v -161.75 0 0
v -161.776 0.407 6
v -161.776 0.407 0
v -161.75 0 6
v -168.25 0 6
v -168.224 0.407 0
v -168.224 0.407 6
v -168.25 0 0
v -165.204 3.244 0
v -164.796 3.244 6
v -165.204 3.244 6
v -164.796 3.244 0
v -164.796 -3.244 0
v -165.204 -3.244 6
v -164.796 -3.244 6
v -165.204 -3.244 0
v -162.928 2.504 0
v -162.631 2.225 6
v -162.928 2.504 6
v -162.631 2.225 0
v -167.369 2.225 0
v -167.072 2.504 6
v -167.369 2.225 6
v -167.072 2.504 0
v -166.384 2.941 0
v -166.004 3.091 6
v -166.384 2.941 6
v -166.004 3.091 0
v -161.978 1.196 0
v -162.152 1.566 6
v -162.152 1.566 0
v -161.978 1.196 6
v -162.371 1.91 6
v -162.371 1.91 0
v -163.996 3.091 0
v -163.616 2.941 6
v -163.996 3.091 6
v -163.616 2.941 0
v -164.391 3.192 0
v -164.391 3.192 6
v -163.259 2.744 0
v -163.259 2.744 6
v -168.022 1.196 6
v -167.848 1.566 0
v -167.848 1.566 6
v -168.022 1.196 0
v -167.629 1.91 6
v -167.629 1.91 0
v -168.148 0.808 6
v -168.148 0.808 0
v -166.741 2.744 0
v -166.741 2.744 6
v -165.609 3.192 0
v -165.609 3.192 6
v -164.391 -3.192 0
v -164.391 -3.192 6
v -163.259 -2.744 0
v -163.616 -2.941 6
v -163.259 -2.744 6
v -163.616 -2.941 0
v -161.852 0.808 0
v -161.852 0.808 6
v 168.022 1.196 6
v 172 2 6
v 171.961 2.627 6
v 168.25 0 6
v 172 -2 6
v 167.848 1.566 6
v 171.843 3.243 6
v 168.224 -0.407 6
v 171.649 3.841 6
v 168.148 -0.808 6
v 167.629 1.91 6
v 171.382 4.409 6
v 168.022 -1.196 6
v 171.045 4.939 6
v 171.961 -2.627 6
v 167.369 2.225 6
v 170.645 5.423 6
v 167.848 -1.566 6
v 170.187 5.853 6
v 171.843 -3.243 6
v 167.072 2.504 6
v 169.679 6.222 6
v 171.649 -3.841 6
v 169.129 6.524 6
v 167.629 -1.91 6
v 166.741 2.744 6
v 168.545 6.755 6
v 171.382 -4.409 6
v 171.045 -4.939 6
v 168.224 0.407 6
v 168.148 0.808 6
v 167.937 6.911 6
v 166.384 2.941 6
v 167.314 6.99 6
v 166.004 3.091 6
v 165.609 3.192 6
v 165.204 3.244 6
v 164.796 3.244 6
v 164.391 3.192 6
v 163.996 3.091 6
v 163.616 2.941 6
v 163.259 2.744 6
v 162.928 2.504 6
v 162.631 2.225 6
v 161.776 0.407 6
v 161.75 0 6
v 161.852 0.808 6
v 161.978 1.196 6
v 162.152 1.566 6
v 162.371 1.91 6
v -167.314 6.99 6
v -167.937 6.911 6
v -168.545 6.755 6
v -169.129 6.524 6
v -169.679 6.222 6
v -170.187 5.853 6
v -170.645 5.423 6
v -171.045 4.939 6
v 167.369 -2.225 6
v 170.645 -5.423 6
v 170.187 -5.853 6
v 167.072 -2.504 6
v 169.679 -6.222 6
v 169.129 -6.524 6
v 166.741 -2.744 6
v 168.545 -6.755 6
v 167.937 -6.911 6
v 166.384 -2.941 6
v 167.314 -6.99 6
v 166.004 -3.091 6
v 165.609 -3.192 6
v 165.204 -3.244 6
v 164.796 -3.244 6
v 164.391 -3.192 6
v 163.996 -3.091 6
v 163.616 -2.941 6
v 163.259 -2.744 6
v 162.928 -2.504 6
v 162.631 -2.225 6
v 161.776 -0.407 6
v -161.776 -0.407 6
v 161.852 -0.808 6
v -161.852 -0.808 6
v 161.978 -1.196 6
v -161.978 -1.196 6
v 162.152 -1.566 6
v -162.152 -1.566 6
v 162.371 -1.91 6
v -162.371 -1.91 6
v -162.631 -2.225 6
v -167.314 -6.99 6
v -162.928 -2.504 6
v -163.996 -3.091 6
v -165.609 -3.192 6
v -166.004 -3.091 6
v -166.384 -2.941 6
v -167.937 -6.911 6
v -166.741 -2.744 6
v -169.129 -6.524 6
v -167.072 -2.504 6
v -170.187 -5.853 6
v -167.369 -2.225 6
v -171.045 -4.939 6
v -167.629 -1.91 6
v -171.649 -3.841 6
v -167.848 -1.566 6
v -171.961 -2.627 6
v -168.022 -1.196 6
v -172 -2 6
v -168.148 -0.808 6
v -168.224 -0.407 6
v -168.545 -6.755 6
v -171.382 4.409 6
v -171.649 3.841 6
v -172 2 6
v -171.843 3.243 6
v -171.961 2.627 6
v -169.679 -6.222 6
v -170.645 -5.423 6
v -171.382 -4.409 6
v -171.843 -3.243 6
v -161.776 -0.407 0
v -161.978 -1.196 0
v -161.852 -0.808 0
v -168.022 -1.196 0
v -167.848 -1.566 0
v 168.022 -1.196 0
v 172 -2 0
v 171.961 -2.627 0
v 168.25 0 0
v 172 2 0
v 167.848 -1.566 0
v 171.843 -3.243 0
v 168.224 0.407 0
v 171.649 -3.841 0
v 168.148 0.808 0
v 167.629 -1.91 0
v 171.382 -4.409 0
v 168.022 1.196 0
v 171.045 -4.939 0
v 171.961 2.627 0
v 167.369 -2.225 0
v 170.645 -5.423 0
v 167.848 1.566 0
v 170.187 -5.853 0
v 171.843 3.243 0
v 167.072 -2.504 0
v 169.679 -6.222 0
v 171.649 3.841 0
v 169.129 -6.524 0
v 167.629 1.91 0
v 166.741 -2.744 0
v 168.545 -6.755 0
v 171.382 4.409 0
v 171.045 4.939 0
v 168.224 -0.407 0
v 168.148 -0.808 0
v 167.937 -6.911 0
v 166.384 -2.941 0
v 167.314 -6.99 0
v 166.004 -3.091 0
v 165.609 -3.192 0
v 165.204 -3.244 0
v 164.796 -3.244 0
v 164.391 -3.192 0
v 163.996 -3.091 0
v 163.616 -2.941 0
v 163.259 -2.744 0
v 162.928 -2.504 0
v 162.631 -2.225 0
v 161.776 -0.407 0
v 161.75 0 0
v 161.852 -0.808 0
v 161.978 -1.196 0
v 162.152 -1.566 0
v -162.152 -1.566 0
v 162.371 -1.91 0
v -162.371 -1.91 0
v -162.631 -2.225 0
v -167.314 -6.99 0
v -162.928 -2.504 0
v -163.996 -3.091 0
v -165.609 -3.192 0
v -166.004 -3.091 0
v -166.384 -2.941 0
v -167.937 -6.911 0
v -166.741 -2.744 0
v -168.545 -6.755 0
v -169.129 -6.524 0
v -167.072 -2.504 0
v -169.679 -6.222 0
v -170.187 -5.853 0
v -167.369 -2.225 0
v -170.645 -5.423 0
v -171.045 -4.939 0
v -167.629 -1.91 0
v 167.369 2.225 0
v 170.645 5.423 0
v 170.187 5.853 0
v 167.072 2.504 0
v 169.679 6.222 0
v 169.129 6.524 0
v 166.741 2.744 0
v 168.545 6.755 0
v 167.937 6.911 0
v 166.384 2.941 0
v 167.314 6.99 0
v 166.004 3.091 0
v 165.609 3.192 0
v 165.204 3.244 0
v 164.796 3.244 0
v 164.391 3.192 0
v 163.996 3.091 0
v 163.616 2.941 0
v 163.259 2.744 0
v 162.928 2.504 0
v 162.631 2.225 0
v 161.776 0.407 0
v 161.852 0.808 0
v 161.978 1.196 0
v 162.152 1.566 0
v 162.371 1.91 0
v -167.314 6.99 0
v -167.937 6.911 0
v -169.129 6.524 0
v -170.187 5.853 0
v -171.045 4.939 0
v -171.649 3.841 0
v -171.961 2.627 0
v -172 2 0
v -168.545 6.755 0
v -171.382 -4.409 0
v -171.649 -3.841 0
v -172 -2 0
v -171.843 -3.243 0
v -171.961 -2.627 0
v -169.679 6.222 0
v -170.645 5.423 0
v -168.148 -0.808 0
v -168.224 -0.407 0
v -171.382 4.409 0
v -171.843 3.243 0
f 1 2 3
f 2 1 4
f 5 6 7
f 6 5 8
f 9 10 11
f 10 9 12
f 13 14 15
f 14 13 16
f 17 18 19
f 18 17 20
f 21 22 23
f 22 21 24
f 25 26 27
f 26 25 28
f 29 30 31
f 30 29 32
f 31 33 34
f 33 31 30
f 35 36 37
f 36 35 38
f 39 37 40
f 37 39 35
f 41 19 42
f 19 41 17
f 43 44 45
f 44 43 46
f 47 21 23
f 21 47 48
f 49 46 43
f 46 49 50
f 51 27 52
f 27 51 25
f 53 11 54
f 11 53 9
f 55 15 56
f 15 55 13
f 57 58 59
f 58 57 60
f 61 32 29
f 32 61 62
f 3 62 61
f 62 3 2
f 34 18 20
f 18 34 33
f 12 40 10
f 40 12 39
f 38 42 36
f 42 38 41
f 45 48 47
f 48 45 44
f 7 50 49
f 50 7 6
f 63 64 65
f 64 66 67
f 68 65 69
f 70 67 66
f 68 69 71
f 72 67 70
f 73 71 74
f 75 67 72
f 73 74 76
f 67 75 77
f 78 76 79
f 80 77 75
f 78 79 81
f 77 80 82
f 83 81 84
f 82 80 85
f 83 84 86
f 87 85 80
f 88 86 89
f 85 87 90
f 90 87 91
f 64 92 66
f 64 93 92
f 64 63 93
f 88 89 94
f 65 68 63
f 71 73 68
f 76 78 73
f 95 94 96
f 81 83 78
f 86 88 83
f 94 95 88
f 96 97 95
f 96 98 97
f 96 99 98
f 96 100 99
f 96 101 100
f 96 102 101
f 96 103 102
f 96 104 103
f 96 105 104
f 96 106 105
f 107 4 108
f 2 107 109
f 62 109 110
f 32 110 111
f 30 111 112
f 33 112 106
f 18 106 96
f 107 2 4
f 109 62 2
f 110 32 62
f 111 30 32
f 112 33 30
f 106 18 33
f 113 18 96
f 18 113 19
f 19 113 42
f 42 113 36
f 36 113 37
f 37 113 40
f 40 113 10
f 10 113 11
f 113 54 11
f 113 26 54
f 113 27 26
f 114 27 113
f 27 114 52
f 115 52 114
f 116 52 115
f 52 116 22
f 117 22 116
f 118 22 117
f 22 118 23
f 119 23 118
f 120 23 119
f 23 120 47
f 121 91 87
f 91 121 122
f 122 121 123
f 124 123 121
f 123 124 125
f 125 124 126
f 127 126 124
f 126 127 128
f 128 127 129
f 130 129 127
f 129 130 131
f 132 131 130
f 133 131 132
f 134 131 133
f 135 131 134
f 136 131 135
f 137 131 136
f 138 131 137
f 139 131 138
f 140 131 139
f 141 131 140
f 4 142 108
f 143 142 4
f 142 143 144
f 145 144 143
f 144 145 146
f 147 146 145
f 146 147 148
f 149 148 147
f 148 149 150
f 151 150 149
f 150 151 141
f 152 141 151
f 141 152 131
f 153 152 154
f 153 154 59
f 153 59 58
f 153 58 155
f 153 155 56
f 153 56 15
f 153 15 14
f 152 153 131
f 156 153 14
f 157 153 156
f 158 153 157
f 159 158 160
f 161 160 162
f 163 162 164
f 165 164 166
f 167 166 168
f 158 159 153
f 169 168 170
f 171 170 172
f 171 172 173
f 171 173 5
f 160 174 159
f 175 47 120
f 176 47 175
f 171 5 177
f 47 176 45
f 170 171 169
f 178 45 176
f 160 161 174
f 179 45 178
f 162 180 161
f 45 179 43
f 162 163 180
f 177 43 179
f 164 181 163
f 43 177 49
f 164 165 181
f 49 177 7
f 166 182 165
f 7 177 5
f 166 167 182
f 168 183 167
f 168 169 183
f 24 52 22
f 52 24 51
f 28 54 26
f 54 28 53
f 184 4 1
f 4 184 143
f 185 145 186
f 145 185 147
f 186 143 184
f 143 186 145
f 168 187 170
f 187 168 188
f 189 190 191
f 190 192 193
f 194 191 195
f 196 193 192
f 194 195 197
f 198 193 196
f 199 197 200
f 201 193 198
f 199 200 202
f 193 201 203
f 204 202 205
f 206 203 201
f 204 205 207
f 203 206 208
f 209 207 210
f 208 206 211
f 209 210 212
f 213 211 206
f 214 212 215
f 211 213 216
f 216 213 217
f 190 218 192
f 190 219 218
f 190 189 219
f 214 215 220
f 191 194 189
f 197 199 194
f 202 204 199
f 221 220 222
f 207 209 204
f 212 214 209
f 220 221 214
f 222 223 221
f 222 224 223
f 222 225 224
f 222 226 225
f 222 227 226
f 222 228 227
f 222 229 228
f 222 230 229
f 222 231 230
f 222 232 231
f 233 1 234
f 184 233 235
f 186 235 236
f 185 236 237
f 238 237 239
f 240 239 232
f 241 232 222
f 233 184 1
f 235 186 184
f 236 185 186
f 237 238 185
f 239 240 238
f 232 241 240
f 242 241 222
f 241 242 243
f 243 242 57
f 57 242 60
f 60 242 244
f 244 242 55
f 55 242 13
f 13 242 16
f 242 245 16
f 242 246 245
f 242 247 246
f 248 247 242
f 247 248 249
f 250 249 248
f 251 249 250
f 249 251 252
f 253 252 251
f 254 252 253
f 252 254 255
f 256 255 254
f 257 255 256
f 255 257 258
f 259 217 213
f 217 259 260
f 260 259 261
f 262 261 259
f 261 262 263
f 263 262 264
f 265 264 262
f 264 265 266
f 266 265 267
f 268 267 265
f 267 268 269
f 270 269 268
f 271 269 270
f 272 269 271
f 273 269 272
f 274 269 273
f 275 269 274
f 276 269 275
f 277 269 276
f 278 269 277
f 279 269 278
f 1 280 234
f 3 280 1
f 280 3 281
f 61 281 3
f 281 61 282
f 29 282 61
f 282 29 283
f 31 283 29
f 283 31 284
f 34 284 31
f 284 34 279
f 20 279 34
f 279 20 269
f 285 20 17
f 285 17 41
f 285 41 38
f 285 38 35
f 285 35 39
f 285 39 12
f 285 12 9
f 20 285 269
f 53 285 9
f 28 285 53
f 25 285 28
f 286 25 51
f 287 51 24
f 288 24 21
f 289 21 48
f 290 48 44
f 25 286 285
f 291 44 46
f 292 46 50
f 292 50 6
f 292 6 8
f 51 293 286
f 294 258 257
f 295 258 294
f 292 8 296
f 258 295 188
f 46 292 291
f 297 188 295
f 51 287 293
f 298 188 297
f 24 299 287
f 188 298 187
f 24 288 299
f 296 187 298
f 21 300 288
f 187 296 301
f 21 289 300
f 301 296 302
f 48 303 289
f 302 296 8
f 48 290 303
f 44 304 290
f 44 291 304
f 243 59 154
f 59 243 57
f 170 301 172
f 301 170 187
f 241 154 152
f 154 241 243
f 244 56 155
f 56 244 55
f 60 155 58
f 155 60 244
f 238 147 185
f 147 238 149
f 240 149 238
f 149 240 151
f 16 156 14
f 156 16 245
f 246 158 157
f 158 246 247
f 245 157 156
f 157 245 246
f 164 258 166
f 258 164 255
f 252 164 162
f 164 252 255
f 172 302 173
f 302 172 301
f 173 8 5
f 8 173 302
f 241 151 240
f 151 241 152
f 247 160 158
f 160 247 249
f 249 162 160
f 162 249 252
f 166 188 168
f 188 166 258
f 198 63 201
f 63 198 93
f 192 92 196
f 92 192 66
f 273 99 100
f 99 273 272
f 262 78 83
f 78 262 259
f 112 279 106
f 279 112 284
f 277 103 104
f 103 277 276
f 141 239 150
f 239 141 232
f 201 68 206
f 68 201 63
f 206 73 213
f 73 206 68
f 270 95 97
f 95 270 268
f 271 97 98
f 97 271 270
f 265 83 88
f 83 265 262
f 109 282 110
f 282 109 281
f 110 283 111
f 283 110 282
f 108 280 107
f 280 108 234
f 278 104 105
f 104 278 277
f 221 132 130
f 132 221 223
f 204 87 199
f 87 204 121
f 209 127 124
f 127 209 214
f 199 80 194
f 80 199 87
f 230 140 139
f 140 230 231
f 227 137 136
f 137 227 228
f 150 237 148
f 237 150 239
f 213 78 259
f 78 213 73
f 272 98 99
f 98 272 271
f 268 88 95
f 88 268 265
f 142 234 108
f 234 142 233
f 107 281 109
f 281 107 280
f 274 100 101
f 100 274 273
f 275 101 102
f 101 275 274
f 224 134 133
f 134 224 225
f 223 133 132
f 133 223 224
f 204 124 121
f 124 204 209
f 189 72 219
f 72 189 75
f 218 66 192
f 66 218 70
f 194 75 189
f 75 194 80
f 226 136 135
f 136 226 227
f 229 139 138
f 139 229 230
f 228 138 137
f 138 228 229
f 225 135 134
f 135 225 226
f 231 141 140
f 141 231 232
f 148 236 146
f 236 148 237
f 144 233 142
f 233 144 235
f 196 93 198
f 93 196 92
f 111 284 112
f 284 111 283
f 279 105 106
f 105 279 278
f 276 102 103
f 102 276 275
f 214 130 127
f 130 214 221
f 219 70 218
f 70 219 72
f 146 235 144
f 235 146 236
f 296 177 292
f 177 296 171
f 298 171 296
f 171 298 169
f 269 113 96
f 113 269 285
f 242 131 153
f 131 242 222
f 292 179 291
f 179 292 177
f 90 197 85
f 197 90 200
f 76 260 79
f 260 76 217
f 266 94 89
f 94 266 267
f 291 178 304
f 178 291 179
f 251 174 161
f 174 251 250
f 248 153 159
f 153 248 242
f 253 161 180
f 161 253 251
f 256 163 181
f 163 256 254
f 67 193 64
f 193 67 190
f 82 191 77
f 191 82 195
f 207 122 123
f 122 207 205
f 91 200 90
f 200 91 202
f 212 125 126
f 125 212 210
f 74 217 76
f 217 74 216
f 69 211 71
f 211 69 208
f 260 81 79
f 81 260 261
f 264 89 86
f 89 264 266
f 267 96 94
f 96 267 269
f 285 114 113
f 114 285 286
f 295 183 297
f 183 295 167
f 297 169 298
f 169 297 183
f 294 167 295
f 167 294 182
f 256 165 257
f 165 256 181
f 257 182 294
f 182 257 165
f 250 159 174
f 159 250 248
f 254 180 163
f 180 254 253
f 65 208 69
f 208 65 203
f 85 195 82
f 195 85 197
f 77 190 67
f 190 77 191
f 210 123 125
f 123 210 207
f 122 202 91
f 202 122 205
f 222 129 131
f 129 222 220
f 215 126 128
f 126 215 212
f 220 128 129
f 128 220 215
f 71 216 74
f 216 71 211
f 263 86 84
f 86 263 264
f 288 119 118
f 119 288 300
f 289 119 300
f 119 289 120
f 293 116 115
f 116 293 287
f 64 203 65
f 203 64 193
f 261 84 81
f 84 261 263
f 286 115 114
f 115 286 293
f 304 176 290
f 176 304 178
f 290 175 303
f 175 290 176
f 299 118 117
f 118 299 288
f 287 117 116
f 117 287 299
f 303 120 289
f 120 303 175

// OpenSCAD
$fn = 50;


difference() {
	union() {
		hull() {
			translate(v = [-167.0000000000, 2.0000000000, 0]) {
				cylinder(h = 6, r = 5);
			}
			translate(v = [167.0000000000, 2.0000000000, 0]) {
				cylinder(h = 6, r = 5);
			}
			translate(v = [-167.0000000000, -2.0000000000, 0]) {
				cylinder(h = 6, r = 5);
			}
			translate(v = [167.0000000000, -2.0000000000, 0]) {
				cylinder(h = 6, r = 5);
			}
		}
	}
	union() {
		translate(v = [-165.0000000000, 0.0000000000, 0]) {
			cylinder(h = 6, r = 3.2500000000);
		}
		translate(v = [165.0000000000, 0.0000000000, 0]) {
			cylinder(h = 6, r = 3.2500000000);
		}
		translate(v = [-165.0000000000, 0.0000000000, 0]) {
			cylinder(h = 6, r = 1.8000000000);
		}
		translate(v = [165.0000000000, 0.0000000000, 0]) {
			cylinder(h = 6, r = 1.8000000000);
		}
		translate(v = [-165.0000000000, 0.0000000000, 0]) {
			cylinder(h = 6, r = 1.8000000000);
		}
		translate(v = [165.0000000000, 0.0000000000, 0]) {
			cylinder(h = 6, r = 1.8000000000);
		}
		translate(v = [-165.0000000000, 0.0000000000, 0]) {
			cylinder(h = 6, r = 1.8000000000);
		}
		translate(v = [165.0000000000, 0.0000000000, 0]) {
			cylinder(h = 6, r = 1.8000000000);
		}
	}
}
